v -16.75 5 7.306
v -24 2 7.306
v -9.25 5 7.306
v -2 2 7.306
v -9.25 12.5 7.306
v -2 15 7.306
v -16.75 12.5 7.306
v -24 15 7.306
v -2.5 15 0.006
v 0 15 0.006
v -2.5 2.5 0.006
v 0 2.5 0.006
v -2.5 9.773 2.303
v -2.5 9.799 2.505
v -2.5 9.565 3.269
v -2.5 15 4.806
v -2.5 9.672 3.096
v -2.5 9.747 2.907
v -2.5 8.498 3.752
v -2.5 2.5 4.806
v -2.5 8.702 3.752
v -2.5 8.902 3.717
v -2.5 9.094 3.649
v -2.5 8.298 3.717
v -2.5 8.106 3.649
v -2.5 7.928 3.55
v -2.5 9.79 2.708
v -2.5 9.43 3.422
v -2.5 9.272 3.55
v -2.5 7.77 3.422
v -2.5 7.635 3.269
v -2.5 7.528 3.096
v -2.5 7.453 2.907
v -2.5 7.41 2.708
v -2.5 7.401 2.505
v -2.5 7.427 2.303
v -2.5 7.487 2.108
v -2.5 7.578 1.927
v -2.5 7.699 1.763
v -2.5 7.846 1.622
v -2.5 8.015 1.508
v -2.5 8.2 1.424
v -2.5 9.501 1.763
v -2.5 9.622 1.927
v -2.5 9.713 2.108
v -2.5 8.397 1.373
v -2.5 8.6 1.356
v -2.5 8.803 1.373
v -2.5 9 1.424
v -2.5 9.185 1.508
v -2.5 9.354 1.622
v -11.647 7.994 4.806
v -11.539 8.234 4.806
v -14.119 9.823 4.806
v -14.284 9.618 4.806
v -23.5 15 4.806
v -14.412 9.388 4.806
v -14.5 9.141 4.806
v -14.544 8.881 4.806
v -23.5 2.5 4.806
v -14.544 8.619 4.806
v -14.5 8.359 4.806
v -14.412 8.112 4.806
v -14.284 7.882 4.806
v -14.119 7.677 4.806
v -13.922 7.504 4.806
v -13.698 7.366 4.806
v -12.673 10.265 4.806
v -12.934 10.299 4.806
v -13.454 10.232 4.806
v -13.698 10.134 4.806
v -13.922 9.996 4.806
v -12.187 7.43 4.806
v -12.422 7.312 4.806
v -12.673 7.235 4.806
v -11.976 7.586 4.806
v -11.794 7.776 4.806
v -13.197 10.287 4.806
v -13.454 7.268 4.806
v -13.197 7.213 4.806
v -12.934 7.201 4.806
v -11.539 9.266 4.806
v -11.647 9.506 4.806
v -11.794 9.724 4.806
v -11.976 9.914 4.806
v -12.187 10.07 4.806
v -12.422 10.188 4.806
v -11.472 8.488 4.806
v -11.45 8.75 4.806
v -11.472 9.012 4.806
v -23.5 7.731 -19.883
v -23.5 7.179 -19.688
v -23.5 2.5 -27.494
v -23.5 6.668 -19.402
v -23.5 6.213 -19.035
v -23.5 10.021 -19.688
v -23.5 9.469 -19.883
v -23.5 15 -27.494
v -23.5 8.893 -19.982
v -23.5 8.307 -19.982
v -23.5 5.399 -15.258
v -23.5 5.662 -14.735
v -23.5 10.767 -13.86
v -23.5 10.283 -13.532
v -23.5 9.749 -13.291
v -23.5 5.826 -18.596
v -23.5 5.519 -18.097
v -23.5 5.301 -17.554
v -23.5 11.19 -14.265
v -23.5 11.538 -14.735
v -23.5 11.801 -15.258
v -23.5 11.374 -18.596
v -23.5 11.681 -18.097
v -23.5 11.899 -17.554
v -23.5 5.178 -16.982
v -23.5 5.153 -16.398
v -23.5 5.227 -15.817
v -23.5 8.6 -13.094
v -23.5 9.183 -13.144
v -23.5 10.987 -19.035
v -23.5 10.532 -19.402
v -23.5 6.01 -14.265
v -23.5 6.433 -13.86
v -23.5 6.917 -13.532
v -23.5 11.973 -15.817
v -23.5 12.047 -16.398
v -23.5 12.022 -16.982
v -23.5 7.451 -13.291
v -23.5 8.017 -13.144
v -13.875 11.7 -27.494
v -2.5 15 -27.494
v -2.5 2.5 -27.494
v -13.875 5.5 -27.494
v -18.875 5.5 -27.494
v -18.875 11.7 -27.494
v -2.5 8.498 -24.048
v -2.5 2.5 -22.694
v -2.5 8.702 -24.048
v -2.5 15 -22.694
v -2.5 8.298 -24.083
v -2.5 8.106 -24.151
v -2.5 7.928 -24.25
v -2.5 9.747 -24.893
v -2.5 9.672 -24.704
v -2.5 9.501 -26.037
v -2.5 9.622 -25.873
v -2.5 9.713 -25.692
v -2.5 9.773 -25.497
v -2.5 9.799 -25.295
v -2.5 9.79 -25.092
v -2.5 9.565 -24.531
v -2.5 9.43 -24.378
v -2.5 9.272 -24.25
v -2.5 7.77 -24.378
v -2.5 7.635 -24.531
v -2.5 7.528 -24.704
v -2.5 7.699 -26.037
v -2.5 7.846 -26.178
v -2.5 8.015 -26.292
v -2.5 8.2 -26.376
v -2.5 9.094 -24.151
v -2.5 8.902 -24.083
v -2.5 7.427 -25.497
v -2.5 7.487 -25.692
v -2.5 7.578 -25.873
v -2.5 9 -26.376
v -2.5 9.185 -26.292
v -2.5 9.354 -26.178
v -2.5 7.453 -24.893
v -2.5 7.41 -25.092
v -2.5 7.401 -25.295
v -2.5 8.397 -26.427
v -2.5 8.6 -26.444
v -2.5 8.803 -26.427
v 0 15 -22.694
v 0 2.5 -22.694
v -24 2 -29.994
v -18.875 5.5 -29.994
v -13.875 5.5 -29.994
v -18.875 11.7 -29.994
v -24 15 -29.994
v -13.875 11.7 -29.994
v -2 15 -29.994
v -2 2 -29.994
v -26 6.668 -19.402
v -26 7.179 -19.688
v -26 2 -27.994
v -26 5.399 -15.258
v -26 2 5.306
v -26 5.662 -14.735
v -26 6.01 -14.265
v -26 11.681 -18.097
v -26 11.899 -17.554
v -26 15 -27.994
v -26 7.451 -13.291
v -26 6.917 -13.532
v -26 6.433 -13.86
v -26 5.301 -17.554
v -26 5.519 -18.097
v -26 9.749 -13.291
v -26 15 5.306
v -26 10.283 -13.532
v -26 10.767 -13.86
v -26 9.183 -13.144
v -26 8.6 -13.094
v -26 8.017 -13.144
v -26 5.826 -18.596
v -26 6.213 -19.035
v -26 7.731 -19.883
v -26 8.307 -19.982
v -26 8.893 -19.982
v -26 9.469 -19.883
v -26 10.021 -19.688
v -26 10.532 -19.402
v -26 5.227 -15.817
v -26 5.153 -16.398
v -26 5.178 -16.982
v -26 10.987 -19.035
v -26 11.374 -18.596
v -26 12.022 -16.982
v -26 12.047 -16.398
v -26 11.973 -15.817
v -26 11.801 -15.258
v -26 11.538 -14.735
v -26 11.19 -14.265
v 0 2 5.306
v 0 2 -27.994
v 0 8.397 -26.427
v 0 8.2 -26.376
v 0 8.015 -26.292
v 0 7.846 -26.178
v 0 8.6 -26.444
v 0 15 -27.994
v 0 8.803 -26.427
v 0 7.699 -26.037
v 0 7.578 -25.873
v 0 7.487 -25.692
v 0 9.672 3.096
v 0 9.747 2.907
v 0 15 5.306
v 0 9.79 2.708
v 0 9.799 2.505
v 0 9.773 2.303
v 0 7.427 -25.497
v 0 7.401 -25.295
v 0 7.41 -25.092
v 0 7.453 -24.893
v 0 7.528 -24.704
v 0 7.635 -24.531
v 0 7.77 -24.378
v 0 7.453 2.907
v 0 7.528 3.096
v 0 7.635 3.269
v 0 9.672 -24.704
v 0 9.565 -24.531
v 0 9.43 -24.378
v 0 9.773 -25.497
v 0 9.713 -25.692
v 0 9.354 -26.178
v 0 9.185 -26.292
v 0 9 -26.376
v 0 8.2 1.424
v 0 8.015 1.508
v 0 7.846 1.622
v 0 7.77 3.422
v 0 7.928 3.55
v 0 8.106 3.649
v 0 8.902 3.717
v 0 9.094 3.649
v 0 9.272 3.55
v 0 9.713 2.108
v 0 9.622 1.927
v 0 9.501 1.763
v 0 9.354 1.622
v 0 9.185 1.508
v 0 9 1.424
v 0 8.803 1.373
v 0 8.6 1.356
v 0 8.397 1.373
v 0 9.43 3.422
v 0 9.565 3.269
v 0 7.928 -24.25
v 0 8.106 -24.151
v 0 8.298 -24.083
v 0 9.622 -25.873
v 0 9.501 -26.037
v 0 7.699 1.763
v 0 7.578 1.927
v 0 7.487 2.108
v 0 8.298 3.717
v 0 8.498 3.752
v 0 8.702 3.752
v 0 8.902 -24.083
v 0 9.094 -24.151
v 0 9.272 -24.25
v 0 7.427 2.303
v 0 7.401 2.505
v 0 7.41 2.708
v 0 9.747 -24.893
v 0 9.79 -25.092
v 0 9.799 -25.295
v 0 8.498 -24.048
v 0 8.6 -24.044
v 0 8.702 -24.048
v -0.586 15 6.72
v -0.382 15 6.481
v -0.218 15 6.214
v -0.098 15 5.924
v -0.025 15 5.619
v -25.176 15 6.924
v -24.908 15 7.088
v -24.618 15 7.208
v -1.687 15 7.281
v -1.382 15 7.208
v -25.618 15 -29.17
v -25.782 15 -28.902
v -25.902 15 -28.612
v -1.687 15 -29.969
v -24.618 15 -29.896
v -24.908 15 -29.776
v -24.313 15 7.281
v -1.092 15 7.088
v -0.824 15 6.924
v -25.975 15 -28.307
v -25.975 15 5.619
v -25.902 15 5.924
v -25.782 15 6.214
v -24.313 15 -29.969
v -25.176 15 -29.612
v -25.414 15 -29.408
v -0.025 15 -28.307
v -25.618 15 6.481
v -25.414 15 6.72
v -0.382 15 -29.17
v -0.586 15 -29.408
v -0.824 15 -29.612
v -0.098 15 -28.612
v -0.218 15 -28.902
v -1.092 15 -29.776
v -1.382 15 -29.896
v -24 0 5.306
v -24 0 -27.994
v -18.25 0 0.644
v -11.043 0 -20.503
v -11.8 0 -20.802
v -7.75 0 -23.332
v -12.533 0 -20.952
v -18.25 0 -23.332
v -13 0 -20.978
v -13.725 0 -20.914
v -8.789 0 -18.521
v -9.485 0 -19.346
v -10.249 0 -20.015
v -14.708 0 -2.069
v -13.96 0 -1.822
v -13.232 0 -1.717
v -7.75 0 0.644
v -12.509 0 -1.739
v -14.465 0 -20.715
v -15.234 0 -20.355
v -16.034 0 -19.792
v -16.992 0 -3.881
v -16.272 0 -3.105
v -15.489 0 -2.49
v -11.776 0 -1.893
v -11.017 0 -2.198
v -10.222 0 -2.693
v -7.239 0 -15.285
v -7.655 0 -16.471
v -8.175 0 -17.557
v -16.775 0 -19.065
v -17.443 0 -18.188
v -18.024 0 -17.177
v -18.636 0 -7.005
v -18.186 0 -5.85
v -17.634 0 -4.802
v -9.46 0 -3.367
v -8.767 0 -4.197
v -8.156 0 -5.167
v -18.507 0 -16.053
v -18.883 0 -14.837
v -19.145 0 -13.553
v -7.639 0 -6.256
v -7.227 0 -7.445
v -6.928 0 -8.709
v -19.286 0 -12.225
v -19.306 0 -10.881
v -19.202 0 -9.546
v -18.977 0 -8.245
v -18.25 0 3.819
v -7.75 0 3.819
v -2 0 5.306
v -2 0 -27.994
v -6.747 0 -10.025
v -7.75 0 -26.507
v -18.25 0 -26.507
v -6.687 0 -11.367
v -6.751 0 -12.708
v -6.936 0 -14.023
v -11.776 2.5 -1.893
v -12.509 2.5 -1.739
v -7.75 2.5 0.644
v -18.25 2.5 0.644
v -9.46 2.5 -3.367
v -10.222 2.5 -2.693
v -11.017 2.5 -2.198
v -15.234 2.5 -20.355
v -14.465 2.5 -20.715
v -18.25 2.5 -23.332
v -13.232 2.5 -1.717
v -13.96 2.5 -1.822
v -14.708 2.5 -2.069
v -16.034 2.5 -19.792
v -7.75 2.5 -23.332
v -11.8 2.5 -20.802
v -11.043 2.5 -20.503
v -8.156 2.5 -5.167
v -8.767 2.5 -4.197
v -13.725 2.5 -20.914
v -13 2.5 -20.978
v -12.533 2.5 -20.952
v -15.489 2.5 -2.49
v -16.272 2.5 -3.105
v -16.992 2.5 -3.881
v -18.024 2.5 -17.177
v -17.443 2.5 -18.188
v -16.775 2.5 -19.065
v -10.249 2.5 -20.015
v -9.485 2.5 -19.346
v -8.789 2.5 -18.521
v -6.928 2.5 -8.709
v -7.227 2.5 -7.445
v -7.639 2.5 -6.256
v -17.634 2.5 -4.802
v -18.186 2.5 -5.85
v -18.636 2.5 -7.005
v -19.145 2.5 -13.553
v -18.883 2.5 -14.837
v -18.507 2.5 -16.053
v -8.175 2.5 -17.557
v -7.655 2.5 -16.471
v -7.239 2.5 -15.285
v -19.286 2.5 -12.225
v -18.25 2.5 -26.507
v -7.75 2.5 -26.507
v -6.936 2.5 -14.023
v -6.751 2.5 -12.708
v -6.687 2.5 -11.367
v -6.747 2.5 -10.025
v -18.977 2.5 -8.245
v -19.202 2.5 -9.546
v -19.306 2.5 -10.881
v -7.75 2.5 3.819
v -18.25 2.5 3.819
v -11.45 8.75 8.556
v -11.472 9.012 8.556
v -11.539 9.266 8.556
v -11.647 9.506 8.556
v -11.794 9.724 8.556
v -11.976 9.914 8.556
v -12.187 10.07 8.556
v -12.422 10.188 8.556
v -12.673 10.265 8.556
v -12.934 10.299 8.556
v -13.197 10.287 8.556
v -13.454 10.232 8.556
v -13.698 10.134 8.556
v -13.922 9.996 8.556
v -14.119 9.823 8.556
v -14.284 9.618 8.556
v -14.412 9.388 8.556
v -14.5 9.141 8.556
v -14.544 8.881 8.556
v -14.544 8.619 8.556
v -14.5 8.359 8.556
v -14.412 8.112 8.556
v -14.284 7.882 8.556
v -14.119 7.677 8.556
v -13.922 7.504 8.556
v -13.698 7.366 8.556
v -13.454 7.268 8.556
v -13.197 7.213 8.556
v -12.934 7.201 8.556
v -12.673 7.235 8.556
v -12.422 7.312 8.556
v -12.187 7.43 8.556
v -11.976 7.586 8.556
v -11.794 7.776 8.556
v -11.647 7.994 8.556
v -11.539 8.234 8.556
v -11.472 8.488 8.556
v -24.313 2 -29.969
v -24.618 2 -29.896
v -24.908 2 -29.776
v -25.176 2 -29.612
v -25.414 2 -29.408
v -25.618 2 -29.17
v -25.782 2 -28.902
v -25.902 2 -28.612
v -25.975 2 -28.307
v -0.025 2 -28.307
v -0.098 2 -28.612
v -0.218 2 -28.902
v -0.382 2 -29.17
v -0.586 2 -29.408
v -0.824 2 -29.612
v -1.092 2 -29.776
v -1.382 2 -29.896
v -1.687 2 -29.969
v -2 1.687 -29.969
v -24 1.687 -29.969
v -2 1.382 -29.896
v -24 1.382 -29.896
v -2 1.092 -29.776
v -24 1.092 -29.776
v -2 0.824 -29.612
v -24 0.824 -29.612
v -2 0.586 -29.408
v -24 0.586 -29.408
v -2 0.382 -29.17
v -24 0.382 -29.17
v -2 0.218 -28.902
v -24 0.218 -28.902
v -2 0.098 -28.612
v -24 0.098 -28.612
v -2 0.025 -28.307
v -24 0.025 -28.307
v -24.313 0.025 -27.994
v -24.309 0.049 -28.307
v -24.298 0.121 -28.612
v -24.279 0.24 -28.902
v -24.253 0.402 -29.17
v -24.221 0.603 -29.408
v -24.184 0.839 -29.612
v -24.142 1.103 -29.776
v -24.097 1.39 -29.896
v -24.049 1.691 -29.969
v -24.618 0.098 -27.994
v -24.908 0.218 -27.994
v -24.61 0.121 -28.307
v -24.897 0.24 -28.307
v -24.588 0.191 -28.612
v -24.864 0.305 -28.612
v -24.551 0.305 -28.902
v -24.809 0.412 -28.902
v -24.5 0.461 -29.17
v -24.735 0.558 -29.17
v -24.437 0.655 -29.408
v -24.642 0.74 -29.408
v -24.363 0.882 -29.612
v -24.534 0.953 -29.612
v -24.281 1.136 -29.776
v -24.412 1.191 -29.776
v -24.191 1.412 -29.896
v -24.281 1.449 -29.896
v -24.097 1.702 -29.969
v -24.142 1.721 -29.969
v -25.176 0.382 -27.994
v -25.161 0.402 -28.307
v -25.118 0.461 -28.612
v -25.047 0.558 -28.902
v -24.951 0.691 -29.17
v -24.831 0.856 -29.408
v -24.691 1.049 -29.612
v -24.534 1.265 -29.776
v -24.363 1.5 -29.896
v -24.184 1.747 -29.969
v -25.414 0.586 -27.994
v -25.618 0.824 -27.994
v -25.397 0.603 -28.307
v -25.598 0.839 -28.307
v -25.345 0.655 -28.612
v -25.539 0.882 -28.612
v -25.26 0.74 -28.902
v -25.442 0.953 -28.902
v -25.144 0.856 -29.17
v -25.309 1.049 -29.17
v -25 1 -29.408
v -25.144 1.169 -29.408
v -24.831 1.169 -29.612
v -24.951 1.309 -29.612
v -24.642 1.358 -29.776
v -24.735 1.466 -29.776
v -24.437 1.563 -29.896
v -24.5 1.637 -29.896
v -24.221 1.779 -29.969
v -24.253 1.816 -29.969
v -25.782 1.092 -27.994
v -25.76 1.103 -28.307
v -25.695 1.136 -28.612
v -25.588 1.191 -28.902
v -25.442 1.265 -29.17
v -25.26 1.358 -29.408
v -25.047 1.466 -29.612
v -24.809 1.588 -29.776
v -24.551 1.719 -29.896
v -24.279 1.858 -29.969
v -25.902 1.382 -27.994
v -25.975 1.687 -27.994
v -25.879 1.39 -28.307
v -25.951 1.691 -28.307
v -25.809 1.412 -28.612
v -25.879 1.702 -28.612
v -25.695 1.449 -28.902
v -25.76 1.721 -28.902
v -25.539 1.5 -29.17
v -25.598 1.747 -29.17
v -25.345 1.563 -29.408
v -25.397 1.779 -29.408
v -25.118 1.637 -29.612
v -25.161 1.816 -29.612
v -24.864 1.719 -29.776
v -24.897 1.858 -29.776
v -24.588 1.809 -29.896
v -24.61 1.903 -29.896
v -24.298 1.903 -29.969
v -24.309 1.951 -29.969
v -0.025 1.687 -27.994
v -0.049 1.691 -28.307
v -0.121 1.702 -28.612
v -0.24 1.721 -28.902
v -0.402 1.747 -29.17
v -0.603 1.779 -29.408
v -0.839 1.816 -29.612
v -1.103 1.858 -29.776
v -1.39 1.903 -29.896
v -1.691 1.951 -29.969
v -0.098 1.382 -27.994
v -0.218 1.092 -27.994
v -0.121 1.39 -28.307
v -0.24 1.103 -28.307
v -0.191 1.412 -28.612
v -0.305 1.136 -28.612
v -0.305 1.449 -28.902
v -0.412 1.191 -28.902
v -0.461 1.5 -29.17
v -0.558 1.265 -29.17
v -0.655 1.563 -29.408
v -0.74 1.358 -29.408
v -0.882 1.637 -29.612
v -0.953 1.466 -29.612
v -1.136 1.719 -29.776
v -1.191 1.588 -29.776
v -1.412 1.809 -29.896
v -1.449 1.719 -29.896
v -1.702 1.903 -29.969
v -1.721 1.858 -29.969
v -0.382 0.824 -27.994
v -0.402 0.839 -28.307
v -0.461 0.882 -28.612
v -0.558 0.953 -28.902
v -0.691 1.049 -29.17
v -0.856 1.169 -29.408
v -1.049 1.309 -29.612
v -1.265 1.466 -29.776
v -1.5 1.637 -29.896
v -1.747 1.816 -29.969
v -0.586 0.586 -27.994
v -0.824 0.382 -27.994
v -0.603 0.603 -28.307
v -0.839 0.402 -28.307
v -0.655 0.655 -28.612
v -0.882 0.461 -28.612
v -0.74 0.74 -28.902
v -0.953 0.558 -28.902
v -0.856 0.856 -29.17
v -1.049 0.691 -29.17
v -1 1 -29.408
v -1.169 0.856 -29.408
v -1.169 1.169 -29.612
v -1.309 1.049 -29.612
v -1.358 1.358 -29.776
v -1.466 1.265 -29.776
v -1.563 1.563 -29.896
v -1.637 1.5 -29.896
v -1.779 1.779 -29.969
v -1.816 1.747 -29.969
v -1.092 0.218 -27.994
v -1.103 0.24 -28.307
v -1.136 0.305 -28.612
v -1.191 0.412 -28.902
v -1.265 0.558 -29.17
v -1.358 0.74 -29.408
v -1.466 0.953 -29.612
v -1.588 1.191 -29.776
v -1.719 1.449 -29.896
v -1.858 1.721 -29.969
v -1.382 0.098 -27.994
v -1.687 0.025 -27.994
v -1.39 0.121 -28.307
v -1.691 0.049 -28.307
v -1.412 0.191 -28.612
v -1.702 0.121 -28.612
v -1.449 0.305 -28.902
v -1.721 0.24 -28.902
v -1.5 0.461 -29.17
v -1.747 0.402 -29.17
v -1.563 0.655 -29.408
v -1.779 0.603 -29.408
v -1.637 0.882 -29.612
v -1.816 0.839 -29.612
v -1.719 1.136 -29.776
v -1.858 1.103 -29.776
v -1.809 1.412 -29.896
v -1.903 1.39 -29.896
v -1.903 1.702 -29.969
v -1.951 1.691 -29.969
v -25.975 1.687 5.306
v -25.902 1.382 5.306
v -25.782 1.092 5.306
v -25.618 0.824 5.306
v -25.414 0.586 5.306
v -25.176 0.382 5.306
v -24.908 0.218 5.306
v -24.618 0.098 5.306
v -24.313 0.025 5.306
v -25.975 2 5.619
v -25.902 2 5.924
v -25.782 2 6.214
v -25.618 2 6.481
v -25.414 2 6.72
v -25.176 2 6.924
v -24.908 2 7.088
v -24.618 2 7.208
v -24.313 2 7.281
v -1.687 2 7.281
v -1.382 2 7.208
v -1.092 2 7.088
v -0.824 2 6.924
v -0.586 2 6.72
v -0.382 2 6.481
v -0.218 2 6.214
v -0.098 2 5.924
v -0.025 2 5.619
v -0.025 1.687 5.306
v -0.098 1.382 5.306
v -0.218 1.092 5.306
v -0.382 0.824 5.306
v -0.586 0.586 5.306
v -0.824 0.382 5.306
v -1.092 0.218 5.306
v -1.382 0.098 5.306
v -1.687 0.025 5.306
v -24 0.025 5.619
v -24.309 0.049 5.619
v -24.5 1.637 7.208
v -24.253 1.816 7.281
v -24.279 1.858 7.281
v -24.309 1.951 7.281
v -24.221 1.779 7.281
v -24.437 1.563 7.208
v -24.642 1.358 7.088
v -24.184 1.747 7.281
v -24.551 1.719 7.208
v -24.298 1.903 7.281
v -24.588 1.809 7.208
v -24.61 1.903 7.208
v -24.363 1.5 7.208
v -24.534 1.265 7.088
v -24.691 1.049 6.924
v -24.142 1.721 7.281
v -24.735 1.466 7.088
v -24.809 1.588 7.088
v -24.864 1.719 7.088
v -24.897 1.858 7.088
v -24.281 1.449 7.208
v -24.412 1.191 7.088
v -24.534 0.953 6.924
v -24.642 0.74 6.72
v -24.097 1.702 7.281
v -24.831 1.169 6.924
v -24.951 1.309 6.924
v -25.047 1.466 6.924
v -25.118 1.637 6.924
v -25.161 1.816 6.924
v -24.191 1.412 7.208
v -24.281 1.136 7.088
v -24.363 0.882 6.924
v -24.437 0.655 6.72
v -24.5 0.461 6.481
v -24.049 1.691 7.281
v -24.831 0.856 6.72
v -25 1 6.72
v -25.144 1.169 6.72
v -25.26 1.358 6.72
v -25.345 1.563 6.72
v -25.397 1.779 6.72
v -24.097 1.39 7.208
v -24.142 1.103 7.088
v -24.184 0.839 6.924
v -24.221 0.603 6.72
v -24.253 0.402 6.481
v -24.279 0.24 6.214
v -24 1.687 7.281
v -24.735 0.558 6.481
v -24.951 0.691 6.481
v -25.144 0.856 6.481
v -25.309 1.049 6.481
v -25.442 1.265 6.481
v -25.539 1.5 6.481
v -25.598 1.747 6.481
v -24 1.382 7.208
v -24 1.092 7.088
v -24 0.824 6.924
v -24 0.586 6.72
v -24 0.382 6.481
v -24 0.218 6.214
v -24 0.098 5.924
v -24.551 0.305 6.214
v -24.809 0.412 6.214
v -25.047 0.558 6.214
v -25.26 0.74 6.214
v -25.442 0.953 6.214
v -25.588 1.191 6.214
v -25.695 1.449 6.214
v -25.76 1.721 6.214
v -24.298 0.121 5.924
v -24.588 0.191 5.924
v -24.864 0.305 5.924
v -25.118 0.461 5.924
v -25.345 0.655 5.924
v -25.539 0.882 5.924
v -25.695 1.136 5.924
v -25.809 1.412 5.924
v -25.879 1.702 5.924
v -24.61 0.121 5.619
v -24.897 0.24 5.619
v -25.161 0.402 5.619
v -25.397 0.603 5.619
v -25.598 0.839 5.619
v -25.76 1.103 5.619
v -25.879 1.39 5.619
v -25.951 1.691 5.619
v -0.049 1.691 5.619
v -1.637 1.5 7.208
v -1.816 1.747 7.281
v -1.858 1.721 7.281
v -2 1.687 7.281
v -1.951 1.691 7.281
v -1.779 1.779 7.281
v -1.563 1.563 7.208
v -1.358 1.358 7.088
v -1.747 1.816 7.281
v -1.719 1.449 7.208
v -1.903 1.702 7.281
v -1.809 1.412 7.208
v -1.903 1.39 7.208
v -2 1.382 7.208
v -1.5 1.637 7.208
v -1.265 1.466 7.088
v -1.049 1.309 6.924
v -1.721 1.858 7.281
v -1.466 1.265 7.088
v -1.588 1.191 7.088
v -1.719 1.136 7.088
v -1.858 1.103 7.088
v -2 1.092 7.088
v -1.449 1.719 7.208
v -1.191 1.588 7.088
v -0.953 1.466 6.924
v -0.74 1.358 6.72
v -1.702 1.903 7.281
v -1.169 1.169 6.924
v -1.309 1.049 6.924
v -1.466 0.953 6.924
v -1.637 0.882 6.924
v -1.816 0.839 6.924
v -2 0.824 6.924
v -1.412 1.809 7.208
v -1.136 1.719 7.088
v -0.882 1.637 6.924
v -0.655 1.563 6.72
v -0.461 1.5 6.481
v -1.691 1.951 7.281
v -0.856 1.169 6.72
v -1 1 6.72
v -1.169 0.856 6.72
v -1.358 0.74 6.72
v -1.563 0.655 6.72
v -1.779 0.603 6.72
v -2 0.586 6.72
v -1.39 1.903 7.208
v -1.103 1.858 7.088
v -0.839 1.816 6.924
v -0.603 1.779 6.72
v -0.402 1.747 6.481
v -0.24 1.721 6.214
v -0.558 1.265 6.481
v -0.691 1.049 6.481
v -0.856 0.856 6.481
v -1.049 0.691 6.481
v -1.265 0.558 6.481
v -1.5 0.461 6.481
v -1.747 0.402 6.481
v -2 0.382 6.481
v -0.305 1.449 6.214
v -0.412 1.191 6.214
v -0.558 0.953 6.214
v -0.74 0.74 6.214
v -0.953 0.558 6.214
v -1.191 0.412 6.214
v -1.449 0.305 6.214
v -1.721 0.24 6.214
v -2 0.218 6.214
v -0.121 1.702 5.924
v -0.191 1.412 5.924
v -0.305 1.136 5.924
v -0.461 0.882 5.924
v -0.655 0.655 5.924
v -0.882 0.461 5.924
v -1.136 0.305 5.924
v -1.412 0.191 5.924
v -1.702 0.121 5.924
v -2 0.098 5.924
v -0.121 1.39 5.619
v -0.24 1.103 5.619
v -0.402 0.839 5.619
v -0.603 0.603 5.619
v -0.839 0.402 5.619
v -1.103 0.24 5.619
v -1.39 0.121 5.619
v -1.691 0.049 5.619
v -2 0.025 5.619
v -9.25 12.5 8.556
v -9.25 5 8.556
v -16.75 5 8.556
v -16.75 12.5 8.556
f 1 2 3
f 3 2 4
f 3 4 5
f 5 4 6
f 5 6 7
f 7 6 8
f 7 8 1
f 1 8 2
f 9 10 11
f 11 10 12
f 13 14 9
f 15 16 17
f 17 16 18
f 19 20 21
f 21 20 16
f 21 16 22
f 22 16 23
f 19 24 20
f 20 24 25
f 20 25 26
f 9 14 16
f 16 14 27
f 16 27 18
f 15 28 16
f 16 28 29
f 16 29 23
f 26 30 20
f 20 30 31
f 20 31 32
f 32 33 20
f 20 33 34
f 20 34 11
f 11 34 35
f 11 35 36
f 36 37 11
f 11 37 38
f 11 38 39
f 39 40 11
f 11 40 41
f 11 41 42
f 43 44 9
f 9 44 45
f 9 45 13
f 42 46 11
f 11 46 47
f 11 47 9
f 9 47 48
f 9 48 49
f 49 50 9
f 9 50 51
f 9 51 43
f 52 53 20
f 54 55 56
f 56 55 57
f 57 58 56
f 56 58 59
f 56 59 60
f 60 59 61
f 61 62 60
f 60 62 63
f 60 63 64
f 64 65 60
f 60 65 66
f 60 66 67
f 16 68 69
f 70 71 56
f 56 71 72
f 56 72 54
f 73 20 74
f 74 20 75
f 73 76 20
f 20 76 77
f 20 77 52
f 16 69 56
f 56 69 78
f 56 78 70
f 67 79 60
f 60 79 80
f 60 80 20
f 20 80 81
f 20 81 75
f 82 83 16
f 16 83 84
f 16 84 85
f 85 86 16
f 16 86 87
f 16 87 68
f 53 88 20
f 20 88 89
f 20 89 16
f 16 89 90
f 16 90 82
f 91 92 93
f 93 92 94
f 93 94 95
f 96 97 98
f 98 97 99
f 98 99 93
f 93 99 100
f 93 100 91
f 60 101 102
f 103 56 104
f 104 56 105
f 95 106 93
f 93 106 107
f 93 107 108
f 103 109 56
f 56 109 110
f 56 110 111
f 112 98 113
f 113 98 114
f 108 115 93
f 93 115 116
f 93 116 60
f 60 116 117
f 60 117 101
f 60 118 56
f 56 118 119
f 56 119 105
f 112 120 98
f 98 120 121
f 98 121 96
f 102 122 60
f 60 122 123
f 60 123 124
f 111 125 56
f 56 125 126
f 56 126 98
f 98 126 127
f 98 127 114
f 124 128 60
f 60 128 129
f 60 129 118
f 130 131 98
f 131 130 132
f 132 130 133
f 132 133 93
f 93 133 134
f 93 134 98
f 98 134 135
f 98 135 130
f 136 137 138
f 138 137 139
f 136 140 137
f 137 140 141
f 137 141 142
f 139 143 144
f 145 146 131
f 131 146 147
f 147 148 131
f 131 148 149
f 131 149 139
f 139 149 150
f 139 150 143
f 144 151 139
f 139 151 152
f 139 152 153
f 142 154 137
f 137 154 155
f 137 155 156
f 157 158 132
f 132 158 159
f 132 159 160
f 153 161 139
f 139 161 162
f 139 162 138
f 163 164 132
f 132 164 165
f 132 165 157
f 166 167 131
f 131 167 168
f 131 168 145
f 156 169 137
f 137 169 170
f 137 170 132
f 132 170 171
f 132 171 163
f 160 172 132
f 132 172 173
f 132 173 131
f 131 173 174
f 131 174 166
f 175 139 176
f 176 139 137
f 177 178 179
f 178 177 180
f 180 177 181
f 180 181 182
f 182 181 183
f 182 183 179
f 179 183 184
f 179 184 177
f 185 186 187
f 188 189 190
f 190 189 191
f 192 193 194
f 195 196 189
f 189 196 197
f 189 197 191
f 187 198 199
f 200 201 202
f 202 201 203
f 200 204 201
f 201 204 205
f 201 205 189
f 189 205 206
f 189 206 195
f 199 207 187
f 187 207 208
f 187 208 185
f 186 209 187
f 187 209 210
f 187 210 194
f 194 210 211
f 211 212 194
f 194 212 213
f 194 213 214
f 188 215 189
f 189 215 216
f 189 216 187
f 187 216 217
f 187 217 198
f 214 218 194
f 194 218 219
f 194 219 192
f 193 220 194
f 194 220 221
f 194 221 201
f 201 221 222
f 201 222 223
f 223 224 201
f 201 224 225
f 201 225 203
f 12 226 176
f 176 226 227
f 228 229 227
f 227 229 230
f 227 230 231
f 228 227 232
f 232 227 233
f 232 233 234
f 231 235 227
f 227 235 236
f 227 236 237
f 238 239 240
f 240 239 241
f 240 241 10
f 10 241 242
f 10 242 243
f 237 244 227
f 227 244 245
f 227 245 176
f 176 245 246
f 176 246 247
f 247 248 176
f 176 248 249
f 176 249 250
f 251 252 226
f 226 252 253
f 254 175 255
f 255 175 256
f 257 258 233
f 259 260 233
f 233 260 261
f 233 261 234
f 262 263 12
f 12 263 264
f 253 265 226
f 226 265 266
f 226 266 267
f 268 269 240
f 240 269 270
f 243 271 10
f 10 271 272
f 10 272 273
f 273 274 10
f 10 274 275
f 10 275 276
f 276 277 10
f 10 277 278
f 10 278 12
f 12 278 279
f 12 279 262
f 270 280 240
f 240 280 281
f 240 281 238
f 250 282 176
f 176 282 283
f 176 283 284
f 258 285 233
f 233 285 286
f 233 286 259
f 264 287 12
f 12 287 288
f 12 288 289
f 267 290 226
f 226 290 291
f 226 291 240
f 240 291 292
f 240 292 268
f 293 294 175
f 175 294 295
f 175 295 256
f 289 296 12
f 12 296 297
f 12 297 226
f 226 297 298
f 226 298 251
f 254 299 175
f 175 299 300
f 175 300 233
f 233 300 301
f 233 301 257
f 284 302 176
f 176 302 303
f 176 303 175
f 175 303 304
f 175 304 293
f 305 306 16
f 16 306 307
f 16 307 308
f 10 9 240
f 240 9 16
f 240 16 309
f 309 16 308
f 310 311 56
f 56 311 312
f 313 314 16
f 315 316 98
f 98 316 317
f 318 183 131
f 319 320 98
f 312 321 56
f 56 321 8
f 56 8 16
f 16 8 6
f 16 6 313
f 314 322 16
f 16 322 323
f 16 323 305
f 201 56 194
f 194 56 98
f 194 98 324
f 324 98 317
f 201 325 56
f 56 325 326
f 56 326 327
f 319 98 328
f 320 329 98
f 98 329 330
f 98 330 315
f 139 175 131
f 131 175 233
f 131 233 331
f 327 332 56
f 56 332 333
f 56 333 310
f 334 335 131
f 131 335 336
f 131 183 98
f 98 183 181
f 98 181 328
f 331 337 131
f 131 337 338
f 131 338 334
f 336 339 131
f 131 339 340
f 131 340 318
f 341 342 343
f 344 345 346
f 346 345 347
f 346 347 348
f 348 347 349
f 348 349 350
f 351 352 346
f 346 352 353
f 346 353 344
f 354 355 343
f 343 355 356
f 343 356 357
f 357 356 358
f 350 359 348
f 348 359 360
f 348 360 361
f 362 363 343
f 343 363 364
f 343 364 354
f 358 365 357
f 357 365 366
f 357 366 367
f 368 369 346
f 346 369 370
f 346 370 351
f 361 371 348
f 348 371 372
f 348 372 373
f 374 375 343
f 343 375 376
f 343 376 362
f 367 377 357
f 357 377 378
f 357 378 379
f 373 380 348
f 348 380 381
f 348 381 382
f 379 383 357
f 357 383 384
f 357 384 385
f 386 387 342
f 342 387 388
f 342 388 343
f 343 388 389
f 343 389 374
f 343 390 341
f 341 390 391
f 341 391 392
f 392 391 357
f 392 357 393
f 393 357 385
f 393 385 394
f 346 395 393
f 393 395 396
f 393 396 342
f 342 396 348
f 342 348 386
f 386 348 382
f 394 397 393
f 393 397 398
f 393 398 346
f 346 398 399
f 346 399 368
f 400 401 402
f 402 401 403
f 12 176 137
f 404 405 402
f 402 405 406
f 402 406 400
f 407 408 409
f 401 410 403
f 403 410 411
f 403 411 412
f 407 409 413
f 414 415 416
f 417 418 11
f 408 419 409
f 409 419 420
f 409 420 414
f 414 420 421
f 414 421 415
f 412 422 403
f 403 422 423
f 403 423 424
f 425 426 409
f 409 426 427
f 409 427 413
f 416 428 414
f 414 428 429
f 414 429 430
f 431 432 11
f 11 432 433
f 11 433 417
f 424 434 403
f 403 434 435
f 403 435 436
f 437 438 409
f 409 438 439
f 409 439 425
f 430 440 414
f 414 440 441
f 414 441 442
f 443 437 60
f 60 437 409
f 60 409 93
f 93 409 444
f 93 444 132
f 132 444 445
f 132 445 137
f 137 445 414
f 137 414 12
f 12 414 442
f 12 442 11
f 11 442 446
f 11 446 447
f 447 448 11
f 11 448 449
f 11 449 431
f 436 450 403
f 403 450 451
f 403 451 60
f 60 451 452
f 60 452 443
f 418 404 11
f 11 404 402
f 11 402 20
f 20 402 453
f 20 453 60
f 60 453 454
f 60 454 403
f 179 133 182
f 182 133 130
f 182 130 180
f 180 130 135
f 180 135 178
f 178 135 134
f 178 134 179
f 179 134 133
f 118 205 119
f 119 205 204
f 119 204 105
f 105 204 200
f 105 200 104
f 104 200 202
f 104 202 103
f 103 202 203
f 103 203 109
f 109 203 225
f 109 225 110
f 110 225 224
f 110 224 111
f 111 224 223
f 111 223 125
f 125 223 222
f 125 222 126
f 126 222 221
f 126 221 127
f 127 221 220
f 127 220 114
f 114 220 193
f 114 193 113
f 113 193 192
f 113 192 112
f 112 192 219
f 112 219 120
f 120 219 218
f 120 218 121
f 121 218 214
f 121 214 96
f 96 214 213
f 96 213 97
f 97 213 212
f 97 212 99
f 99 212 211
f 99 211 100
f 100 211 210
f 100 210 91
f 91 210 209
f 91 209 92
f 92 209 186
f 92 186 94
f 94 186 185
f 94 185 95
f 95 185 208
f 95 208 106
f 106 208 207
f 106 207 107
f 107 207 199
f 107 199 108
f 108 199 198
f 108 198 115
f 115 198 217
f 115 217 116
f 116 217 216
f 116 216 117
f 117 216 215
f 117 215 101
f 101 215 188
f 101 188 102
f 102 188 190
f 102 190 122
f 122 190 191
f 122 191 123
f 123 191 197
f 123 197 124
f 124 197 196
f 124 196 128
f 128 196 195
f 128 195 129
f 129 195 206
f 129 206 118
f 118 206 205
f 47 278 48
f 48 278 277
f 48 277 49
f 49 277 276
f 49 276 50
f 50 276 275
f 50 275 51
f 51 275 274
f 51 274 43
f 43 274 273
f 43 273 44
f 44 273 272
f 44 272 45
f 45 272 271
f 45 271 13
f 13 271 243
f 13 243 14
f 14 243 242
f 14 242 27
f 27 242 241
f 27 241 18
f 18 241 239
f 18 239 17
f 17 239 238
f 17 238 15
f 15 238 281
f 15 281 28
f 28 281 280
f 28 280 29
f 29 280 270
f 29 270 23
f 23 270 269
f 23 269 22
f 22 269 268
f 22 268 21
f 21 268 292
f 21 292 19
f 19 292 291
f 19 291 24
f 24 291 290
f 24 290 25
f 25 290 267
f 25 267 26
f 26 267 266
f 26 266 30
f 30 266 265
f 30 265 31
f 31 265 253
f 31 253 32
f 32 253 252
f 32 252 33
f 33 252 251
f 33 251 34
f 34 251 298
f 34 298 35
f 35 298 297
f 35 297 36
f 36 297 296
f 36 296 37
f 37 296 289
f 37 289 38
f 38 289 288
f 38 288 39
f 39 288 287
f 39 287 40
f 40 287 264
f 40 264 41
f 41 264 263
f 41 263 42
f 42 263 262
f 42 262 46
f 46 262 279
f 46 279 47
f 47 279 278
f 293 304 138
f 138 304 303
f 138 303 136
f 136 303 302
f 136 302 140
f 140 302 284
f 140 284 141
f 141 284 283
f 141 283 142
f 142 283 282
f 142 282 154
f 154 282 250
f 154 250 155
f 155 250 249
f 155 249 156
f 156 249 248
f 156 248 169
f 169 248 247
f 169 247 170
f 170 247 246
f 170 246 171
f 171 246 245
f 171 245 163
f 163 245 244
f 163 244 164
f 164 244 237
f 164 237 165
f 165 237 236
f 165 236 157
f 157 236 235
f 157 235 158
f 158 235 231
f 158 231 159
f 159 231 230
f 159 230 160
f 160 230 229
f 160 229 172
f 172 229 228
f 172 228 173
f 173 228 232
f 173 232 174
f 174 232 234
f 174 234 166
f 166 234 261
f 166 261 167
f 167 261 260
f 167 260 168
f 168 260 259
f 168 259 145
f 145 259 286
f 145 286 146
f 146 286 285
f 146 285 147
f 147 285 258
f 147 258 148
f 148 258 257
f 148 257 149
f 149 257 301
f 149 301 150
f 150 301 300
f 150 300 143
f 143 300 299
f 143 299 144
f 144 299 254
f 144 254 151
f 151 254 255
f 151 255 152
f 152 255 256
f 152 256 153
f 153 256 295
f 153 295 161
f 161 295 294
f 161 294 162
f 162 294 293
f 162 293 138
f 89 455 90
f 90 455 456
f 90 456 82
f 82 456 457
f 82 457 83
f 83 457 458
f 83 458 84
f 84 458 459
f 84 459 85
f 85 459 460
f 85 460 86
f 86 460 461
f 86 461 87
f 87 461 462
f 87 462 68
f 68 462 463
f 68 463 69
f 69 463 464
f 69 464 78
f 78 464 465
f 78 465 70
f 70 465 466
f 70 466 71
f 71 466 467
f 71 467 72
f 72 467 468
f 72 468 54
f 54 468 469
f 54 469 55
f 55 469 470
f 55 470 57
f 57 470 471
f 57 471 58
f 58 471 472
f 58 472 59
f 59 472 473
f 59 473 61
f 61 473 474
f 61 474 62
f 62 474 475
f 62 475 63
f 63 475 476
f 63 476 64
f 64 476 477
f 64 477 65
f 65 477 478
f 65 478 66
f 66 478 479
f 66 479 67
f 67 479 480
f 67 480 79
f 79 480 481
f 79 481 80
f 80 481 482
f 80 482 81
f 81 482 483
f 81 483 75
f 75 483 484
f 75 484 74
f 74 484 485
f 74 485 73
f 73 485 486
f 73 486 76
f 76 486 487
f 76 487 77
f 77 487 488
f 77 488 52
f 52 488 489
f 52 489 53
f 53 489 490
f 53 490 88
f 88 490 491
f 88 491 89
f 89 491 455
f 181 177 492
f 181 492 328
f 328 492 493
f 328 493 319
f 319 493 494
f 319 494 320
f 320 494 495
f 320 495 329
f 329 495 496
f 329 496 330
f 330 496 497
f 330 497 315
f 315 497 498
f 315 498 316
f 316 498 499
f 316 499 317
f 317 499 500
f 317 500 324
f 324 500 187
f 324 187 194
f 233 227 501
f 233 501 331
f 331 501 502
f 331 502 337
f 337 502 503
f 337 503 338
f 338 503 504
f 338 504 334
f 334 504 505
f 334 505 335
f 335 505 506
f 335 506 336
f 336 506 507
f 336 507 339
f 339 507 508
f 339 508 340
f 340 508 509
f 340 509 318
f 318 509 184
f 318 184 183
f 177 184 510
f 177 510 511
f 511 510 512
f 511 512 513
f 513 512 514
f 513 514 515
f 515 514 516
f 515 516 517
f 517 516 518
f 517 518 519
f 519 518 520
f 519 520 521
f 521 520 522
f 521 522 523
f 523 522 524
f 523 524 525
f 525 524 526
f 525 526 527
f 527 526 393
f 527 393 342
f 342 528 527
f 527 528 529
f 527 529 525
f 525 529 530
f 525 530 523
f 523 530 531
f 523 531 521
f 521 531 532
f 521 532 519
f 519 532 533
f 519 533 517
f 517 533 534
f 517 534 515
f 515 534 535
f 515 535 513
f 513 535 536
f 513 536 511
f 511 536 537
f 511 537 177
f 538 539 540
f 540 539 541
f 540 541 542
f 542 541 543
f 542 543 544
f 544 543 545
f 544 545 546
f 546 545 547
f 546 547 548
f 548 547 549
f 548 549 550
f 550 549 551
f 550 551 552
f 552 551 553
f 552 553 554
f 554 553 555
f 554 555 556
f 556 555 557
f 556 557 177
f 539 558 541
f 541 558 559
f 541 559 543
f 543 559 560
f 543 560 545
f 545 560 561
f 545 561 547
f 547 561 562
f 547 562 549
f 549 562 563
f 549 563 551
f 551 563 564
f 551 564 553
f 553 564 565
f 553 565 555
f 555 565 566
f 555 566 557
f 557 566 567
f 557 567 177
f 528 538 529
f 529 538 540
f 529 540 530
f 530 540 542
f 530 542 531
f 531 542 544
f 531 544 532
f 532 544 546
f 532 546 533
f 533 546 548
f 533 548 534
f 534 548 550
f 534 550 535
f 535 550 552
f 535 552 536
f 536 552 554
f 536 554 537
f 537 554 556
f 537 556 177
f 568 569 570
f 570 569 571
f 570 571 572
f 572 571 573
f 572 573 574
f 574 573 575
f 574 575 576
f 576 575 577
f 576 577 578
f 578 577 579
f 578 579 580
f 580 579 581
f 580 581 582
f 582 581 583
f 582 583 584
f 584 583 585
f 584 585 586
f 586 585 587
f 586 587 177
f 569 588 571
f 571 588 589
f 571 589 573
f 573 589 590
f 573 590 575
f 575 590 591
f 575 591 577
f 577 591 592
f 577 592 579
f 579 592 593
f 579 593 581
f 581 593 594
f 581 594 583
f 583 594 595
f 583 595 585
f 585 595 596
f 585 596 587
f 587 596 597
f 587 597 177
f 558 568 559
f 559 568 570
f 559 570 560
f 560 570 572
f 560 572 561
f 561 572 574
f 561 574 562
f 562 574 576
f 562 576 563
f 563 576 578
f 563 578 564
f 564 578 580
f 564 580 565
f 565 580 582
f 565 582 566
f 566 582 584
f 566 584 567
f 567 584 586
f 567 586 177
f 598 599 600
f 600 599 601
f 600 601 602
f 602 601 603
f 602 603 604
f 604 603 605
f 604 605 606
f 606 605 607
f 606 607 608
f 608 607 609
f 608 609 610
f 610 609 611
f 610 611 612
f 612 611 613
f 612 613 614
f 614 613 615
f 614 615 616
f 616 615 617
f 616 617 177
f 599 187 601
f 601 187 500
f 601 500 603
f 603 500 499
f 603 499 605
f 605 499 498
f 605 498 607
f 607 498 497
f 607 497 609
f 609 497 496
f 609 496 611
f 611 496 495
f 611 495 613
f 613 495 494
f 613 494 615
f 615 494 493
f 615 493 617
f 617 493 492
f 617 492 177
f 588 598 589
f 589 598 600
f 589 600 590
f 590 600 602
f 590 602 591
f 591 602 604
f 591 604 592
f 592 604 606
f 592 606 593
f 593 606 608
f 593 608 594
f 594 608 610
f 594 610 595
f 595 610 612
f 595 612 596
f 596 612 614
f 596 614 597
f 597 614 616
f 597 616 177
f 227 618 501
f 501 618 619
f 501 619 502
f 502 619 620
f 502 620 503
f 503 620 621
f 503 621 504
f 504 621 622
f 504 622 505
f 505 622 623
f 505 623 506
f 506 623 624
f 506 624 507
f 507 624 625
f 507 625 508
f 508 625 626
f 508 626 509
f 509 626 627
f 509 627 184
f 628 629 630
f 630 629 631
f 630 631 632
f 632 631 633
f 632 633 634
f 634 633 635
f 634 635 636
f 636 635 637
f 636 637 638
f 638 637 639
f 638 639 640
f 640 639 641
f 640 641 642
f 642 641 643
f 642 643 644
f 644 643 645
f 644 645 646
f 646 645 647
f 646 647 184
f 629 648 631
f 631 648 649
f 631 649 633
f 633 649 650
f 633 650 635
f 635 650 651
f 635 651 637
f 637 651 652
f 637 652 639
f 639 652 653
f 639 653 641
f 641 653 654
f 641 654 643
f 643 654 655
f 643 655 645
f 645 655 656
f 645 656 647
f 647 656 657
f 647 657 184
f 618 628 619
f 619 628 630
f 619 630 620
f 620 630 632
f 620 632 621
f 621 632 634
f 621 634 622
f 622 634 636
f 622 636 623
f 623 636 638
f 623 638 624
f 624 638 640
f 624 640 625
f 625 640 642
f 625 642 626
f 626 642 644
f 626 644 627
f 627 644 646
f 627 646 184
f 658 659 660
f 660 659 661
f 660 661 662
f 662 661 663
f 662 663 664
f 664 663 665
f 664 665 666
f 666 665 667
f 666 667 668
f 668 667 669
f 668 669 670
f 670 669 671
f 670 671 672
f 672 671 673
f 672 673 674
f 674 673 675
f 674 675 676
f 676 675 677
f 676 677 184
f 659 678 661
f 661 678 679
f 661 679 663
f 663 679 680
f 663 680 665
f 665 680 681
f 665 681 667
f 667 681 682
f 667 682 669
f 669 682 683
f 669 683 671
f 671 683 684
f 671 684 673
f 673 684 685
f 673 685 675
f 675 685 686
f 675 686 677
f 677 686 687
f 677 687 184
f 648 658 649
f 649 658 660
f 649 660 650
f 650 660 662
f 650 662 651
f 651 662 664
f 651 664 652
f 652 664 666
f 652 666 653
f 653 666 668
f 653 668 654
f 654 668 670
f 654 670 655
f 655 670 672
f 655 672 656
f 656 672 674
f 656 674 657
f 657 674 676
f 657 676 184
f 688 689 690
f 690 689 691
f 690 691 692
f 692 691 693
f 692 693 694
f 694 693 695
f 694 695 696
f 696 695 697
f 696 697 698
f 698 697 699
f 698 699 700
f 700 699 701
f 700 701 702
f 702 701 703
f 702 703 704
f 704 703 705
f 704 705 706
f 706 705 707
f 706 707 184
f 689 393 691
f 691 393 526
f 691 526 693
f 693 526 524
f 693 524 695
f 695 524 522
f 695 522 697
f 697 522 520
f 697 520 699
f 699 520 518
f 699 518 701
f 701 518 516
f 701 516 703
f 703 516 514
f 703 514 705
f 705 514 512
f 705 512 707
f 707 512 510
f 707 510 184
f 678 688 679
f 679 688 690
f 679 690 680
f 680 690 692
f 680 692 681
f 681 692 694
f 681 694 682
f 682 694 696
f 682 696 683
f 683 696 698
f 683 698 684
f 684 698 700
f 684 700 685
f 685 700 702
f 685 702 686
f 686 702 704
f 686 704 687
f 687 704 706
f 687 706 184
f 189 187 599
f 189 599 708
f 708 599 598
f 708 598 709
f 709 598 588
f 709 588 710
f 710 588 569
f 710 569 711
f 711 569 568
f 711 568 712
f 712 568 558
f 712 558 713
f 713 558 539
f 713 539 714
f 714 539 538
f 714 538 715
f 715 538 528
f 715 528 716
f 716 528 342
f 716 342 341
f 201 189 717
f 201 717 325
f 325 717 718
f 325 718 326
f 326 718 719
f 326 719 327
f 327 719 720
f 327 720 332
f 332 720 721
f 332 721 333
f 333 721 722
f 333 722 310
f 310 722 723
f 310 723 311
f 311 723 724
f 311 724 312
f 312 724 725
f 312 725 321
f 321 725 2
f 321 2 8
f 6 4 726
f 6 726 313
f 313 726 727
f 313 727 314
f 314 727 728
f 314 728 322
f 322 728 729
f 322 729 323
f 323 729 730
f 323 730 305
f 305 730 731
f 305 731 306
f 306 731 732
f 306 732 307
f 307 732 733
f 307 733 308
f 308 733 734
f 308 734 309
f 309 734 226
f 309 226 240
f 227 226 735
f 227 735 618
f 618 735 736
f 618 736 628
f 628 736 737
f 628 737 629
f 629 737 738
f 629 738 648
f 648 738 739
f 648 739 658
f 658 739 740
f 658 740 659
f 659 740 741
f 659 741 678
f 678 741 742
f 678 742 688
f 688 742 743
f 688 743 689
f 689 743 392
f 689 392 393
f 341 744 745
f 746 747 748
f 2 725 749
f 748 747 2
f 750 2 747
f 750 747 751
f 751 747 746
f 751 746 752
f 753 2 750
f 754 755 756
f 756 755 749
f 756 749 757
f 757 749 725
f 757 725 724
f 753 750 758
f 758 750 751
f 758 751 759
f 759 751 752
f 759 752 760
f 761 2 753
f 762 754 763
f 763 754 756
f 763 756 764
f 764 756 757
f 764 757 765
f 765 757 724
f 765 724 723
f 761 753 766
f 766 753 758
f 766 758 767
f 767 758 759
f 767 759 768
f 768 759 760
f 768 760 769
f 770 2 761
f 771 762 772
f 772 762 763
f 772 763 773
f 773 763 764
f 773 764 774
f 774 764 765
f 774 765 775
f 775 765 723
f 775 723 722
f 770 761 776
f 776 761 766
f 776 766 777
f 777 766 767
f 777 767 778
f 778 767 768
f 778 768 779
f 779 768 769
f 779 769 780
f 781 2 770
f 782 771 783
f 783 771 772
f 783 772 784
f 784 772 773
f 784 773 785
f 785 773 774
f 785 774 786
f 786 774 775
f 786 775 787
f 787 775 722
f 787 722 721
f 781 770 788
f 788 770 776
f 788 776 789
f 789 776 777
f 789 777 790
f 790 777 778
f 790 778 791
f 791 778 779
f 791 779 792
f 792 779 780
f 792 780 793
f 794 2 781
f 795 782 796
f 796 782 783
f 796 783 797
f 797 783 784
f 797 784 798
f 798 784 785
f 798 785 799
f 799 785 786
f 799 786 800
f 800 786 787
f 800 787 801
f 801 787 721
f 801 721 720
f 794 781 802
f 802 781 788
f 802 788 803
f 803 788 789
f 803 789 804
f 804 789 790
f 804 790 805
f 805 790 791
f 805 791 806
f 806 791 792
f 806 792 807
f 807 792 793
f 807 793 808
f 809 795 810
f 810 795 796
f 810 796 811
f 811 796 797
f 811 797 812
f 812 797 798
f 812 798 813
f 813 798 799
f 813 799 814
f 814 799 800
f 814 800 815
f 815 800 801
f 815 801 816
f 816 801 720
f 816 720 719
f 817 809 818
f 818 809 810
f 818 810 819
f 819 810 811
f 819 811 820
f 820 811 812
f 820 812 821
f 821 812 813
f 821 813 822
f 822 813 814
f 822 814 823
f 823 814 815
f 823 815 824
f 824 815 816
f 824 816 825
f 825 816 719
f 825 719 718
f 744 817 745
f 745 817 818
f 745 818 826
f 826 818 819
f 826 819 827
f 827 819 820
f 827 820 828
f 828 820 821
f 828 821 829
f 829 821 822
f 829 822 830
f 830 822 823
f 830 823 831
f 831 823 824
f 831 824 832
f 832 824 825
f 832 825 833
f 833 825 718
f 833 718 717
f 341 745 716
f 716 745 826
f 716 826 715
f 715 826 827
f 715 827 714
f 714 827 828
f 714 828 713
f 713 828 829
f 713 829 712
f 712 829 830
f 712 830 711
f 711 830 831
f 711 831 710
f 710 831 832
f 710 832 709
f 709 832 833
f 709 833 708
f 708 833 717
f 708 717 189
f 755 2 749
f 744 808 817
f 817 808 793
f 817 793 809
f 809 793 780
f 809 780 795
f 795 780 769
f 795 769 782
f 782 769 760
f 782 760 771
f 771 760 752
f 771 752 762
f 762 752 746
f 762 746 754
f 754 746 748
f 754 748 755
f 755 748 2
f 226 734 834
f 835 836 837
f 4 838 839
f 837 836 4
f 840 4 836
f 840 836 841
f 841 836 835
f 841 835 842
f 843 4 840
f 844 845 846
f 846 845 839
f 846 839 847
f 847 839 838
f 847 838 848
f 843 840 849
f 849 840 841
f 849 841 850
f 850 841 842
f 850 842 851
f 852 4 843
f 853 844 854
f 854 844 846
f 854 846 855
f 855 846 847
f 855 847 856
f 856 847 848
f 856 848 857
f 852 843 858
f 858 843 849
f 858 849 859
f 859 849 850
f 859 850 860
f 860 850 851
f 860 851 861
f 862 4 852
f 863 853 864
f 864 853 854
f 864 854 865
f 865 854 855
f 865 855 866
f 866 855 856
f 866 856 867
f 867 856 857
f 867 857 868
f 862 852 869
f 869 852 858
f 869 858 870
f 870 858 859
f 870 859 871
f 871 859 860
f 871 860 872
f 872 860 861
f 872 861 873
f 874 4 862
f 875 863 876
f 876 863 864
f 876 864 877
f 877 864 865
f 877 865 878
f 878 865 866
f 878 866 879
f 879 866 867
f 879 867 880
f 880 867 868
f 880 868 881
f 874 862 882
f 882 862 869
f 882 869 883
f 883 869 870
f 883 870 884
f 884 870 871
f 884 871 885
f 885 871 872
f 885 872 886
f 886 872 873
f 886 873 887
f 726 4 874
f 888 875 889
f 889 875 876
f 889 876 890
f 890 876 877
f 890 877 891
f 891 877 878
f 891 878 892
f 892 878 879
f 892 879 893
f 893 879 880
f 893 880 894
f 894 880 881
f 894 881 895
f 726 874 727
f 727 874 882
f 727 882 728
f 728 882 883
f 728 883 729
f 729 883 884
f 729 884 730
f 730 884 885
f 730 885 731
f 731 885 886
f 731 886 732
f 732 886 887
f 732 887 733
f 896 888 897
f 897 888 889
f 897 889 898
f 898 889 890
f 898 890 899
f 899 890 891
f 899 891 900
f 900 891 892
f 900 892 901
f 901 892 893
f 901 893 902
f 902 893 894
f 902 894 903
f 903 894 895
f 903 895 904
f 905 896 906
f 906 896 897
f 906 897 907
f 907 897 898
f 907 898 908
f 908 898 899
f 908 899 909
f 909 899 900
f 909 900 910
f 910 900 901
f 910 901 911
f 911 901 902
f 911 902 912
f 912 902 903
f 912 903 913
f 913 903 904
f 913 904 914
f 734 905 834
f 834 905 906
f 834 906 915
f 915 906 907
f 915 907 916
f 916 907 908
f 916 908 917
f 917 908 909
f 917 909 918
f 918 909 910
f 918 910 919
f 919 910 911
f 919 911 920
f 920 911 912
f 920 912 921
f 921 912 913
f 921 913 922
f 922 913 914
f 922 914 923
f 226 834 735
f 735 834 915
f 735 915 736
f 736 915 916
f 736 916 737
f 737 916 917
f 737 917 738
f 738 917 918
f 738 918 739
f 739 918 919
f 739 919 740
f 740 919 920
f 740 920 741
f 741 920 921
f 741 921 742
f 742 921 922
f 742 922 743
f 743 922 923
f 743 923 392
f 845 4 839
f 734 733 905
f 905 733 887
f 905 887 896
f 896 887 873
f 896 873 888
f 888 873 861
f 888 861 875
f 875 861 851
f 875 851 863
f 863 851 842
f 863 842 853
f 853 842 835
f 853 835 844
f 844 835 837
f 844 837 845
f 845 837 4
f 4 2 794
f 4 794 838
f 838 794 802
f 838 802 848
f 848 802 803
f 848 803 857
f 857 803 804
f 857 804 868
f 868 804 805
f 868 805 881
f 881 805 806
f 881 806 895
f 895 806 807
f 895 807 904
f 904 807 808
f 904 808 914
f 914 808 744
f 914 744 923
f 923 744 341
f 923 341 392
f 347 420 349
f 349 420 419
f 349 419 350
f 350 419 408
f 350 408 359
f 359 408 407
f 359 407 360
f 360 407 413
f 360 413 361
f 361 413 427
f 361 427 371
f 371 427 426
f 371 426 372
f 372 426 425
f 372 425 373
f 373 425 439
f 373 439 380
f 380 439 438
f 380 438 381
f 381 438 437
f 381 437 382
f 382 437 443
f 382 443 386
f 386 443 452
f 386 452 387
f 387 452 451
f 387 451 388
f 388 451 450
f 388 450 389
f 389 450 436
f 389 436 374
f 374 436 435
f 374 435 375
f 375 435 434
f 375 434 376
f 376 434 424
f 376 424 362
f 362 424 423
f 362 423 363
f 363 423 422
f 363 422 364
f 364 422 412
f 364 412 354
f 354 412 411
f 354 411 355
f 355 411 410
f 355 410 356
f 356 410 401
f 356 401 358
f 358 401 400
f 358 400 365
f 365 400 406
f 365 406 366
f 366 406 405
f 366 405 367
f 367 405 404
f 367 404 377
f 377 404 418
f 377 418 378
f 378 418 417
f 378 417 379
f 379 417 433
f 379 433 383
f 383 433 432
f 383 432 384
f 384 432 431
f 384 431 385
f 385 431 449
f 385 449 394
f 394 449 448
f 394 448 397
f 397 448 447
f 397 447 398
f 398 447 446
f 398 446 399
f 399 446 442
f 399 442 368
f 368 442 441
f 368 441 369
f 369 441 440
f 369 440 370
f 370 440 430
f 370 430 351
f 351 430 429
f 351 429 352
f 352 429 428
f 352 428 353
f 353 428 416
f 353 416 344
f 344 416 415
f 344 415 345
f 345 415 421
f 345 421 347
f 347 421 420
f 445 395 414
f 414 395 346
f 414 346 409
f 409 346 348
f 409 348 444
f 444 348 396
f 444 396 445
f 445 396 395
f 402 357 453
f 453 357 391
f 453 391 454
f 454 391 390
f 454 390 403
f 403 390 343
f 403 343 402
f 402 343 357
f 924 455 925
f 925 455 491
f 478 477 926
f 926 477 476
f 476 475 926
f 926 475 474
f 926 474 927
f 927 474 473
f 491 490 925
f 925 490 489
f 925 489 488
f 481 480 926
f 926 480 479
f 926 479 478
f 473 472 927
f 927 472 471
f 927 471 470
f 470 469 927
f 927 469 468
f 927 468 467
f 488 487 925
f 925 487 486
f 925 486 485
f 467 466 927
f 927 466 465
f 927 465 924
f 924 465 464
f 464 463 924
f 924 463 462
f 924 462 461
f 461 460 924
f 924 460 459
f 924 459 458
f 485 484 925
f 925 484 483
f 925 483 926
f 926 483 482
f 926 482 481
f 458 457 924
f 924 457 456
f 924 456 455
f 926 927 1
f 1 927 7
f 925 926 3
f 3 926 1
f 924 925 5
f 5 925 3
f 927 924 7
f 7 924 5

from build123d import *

# Parameters (mm, degrees)
BOSS_EXTRUDE1_DEPTH = 15
SKETCH2_W           = 32.3
SKETCH2_H           = 2.5
BOSS_EXTRUDE2_DEPTH = 23.5
SKETCH3_W           = 5
SKETCH3_H           = 6.2
CUT_EXTRUDE1_DEPTH  = 12.5
CUT_EXTRUDE2_REACH  = 28
SKETCH4_R           = 3.45
SKETCH5_R           = 1.2
CUT_EXTRUDE3_DEPTH  = 2.5
CUT_EXTRUDE4_REACH  = 39.3
SKETCH6_R           = 1.55
FILLET2_R           = 2
CUT_EXTRUDE6_REACH  = 4.5
SKETCH8_RX          = 9.634046057
SKETCH8_RY          = 6.312870092
SKETCH8_W           = 10.5
SKETCH8_H           = 3.175
SKETCH7_W           = 7.5
SKETCH7_H           = 7.5
SKETCH7_R           = 1.55
BOSS_EXTRUDE3_DEPTH = 1.25


with BuildPart() as part:
    # Sketch1 → Boss-Extrude1 (new body)
    with BuildSketch(Plane(origin=(0, 0, 0), x_dir=(1, 0, 0), z_dir=(0, 1, 0))):
        Polygon((0, 29.994099724), (-26, 29.994099724), (-26, -7.305900276), (0, -7.305900276), (0, -0.005900276), (-2.5, -0.005900276), (-2.5, -4.805900276), (-23.5, -4.805900276), (-23.5, 27.494099724), (-2.5, 27.494099724), (-2.5, 22.694099724), (0, 22.694099724), align=None)
    extrude(amount=BOSS_EXTRUDE1_DEPTH)

    # Sketch2 → Boss-Extrude2 (add, through all)
    with BuildSketch(Plane(origin=(-23.5, 0, 0), x_dir=(0, 0, -1), z_dir=(1, 0, 0))):
        with Locations((11.344099724, 1.25)):
            Rectangle(SKETCH2_W, SKETCH2_H)
    extrude(amount=BOSS_EXTRUDE2_DEPTH)

    # Sketch3 → Cut-Extrude1 (cut)
    with BuildSketch(Plane(origin=(0, 0, -29.994099724), x_dir=(-1, 0, 0), z_dir=(0, 0, -1))):
        with Locations((16.375, 8.6)):
            Rectangle(SKETCH3_W, SKETCH3_H)
    extrude(amount=-CUT_EXTRUDE1_DEPTH, mode=Mode.SUBTRACT)

    # Sketch4 → Cut-Extrude2 (cut, up to next)
    with BuildSketch(Plane.ZY.offset(26), mode=Mode.PRIVATE) as cut_extrude2_sk1:
        with Locations((-16.544099724, 8.6)):
            Circle(SKETCH4_R)
    cut_extrude2_tool1 = extrude(cut_extrude2_sk1.sketch, amount=-CUT_EXTRUDE2_REACH, mode=Mode.PRIVATE) & part.part
    add(cut_extrude2_tool1.solids().sort_by_distance((-26, 8.6, -16.5441))[0], mode=Mode.SUBTRACT)

    # Sketch5 → Cut-Extrude3 (cut)
    with BuildSketch(Plane(origin=(0, 0, 0), x_dir=(0, 0, -1), z_dir=(1, 0, 0))):
        with Locations((-2.555900276, 8.6)):
            Circle(SKETCH5_R)
    cut_extrude3 = extrude(amount=-CUT_EXTRUDE3_DEPTH, mode=Mode.SUBTRACT)

    # Mirror1: Cut-Extrude3 across plane
    add(cut_extrude3.mirror(Plane.XY.offset(-11.344099724)), mode=Mode.SUBTRACT)

    # Sketch6 → Cut-Extrude4 (cut, up to next)
    with BuildSketch(Plane.XY.offset(7.305900276), mode=Mode.PRIVATE) as cut_extrude4_sk1:
        with Locations((-13, 8.75)):
            Circle(SKETCH6_R)
    cut_extrude4_tool1 = extrude(cut_extrude4_sk1.sketch, amount=-CUT_EXTRUDE4_REACH, mode=Mode.PRIVATE) & part.part
    add(cut_extrude4_tool1.solids().sort_by_distance((-13, 8.75, 7.3059))[0], mode=Mode.SUBTRACT)

    # Fillet2
    fillet2_edges = [part.edges().sort_by_distance(p)[0] for p in [
        (0, 0, -11.344099724),
        (-13, 0, 7.305900276),
        (-26, 0, -11.344099724),
        (-13, 0, -29.994099724),
        (0, 7.5, 7.305900276),
        (-26, 7.5, 7.305900276),
        (-26, 7.5, -29.994099724),
        (0, 7.5, -29.994099724),
    ]]
    fillet(fillet2_edges, radius=FILLET2_R)

    # Sketch8 → Cut-Extrude6 (cut, up to next)
    with BuildSketch(Plane(origin=(0, 2.5, 0), x_dir=(1, 0, 0), z_dir=(0, 1, 0)), mode=Mode.PRIVATE) as cut_extrude6_sk1:
        with Locations(Location((-13, 11.344099724), (0, 0, 90))):
            Ellipse(SKETCH8_RX, SKETCH8_RY)
    cut_extrude6_tool1 = extrude(cut_extrude6_sk1.sketch, amount=-CUT_EXTRUDE6_REACH, mode=Mode.PRIVATE) & part.part
    add(cut_extrude6_tool1.solids().sort_by_distance((-13, 2.5, -11.3441))[0], mode=Mode.SUBTRACT)
    # Sketch8 → Cut-Extrude6 (cut, up to next)
    with BuildSketch(Plane(origin=(0, 2.5, 0), x_dir=(1, 0, 0), z_dir=(0, 1, 0)), mode=Mode.PRIVATE) as cut_extrude6_sk2:
        with Locations((-13, -2.231384095)):
            Rectangle(SKETCH8_W, SKETCH8_H)
    cut_extrude6_tool2 = extrude(cut_extrude6_sk2.sketch, amount=-CUT_EXTRUDE6_REACH, mode=Mode.PRIVATE) & part.part
    add(cut_extrude6_tool2.solids().sort_by_distance((-13, 2.5, 2.231384))[0], mode=Mode.SUBTRACT)
    # Sketch8 → Cut-Extrude6 (cut, up to next)
    with BuildSketch(Plane(origin=(0, 2.5, 0), x_dir=(1, 0, 0), z_dir=(0, 1, 0)), mode=Mode.PRIVATE) as cut_extrude6_sk3:
        with Locations((-13, 24.919583542)):
            Rectangle(SKETCH8_W, SKETCH8_H)
    cut_extrude6_tool3 = extrude(cut_extrude6_sk3.sketch, amount=-CUT_EXTRUDE6_REACH, mode=Mode.PRIVATE) & part.part
    add(cut_extrude6_tool3.solids().sort_by_distance((-13, 2.5, -24.919584))[0], mode=Mode.SUBTRACT)

    # Sketch7 → Boss-Extrude3 (add)
    with BuildSketch(Plane.XY.offset(7.305900276)):
        with Locations((-13, 8.75)):
            Rectangle(SKETCH7_W, SKETCH7_H)
        with Locations((-13, 8.75)):
            Circle(SKETCH7_R, mode=Mode.SUBTRACT)
    extrude(amount=BOSS_EXTRUDE3_DEPTH)


solid = part.part
